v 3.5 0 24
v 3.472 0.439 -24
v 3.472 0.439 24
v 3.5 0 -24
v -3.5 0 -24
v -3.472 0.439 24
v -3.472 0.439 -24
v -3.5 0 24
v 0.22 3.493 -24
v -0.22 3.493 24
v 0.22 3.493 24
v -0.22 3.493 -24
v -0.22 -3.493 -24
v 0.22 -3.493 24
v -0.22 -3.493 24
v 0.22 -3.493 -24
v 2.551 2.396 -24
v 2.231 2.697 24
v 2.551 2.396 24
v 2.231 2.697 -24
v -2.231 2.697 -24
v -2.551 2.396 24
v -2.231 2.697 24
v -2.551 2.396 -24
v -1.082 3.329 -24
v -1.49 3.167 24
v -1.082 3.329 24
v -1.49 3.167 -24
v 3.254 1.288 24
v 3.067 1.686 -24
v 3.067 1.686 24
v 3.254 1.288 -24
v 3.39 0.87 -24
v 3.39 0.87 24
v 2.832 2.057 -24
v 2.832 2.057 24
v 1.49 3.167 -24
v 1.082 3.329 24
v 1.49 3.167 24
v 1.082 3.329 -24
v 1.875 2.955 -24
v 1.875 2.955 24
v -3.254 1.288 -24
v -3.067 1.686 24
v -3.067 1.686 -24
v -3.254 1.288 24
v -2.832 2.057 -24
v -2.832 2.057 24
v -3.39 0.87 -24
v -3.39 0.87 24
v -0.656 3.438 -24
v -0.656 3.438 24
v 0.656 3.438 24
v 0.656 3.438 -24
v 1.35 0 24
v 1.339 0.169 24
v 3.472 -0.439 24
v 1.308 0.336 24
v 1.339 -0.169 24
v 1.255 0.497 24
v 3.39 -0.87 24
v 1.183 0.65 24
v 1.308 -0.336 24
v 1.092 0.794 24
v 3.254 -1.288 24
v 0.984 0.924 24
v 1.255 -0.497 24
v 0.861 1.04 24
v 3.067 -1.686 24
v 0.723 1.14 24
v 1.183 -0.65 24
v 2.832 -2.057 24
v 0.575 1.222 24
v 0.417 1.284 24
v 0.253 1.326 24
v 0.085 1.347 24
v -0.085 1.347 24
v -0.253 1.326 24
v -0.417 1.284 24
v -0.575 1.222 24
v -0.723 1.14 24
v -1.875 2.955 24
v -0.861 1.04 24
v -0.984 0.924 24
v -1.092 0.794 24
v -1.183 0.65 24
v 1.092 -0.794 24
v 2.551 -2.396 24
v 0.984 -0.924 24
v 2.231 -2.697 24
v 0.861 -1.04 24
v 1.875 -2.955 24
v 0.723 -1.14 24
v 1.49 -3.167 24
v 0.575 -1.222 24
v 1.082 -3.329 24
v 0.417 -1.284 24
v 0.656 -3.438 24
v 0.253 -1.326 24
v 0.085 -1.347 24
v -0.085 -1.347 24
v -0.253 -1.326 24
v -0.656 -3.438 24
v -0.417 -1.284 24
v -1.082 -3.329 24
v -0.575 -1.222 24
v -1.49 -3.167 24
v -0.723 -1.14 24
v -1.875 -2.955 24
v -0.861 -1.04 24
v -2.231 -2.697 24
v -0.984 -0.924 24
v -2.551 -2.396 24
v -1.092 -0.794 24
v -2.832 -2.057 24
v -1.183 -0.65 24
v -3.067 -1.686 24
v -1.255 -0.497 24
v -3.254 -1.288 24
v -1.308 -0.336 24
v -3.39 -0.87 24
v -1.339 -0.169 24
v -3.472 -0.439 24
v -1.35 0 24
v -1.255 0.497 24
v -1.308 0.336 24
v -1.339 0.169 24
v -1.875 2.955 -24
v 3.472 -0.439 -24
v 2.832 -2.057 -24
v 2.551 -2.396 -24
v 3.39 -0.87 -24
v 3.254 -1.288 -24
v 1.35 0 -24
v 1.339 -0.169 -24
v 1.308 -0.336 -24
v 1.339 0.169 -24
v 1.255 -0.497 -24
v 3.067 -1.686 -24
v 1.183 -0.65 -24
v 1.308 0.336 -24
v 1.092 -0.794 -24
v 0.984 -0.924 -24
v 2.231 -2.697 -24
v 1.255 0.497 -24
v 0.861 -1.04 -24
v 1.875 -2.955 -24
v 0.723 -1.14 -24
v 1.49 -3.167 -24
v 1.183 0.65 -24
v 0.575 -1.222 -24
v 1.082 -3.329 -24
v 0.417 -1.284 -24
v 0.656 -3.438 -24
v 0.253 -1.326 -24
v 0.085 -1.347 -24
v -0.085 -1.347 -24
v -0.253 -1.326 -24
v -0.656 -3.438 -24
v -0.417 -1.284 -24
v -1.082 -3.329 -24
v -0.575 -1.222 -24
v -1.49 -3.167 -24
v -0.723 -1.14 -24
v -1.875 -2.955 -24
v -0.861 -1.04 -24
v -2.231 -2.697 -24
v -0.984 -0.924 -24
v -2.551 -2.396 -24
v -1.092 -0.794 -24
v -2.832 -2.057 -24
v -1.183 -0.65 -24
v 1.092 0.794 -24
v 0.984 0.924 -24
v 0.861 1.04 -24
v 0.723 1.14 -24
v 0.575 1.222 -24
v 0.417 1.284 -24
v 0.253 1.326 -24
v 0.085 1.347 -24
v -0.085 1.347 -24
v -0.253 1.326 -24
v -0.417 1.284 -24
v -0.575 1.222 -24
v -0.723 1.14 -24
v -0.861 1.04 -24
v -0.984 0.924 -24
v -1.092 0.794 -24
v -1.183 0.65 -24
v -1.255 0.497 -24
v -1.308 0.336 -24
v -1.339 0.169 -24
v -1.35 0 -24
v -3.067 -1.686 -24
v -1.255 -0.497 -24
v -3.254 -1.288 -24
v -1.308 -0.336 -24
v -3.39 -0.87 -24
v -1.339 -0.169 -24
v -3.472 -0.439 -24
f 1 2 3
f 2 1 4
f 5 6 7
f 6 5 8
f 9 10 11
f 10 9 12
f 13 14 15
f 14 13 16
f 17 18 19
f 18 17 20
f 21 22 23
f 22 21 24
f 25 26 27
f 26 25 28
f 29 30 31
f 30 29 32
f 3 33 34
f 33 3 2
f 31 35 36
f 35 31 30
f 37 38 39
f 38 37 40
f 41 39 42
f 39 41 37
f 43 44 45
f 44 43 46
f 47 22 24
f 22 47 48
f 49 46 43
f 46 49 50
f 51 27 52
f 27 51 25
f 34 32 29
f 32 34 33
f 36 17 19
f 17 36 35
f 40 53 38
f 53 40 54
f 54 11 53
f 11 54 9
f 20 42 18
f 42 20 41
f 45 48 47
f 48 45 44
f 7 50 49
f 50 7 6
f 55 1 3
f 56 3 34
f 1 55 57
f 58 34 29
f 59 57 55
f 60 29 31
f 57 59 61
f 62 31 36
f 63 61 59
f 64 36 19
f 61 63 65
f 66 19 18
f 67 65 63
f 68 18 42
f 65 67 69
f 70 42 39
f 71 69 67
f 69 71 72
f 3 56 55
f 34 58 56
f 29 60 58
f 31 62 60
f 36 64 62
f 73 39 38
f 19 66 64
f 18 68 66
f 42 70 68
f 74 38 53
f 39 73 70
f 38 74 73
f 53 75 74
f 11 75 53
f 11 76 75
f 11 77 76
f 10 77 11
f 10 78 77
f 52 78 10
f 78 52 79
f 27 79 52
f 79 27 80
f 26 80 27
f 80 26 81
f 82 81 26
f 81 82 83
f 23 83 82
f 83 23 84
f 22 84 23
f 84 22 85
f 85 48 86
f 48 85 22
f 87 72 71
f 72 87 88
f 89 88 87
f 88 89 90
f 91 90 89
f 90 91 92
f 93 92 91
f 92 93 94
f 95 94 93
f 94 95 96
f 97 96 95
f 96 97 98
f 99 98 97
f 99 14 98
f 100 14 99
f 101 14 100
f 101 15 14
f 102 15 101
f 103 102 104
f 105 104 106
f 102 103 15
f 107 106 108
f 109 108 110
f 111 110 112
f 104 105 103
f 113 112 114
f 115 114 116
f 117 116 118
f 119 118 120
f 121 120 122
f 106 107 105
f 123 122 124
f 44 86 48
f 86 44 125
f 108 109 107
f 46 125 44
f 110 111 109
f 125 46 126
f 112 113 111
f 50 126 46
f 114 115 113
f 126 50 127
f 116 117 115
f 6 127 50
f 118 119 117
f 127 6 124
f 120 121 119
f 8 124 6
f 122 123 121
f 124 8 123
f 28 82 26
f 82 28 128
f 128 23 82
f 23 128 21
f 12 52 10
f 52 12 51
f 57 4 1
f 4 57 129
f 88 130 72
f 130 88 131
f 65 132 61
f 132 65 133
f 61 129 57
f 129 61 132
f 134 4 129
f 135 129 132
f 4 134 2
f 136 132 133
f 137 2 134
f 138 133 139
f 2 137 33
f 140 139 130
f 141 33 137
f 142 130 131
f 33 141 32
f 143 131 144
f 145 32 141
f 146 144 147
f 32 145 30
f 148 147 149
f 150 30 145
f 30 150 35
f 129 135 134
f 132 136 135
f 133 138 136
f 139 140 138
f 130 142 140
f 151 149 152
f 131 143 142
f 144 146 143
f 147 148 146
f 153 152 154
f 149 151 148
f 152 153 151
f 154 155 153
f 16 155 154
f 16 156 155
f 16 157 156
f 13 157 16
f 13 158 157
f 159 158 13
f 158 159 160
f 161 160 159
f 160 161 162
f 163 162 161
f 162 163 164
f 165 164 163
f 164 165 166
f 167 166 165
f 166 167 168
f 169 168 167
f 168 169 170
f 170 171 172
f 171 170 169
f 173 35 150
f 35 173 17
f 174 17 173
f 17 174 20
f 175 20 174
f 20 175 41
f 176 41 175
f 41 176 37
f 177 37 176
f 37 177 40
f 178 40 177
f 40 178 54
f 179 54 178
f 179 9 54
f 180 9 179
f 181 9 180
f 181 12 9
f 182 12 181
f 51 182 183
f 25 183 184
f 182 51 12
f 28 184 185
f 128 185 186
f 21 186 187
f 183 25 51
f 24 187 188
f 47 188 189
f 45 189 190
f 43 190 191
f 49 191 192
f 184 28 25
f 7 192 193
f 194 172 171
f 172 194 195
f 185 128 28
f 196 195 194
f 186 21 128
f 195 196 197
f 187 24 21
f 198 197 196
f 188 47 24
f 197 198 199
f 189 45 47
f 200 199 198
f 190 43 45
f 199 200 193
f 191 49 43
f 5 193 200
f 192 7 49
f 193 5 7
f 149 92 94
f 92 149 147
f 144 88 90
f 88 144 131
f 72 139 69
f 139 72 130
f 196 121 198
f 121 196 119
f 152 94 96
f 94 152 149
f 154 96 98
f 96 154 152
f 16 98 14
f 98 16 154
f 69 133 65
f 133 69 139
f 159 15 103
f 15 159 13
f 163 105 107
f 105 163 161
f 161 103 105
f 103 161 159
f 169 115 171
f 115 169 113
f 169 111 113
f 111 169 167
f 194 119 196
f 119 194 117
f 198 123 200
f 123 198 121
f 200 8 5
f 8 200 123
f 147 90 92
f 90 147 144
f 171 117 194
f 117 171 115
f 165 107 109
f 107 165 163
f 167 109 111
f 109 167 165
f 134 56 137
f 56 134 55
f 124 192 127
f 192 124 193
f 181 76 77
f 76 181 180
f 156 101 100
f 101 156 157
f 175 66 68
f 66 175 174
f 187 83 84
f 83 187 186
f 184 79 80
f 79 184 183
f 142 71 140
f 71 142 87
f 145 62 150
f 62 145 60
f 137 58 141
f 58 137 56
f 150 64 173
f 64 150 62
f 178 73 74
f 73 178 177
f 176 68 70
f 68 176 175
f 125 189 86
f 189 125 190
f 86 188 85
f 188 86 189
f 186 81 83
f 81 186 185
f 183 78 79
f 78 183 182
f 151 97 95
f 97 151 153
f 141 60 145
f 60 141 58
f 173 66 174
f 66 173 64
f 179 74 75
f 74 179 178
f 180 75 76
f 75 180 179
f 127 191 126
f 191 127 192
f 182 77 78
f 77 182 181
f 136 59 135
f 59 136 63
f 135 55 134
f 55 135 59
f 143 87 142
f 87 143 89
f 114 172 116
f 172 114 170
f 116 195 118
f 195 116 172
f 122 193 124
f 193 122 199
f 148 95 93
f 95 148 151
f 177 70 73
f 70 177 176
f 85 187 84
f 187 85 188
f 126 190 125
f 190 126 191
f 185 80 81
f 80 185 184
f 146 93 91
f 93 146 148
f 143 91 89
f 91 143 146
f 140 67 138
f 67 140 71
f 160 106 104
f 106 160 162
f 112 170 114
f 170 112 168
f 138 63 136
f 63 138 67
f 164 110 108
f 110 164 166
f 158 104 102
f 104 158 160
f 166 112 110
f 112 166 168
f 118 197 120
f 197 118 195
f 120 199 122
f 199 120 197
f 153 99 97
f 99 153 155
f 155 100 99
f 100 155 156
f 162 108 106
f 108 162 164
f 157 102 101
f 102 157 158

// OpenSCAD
$fn = 50;


difference() {
	union() {
		translate(v = [0, 0, -24.0000000000]) {
			cylinder(h = 48, r = 3.5000000000);
		}
	}
	union() {
		translate(v = [0, 0, -100.0000000000]) {
			cylinder(h = 200, r = 1.3500000000);
		}
	}
}
